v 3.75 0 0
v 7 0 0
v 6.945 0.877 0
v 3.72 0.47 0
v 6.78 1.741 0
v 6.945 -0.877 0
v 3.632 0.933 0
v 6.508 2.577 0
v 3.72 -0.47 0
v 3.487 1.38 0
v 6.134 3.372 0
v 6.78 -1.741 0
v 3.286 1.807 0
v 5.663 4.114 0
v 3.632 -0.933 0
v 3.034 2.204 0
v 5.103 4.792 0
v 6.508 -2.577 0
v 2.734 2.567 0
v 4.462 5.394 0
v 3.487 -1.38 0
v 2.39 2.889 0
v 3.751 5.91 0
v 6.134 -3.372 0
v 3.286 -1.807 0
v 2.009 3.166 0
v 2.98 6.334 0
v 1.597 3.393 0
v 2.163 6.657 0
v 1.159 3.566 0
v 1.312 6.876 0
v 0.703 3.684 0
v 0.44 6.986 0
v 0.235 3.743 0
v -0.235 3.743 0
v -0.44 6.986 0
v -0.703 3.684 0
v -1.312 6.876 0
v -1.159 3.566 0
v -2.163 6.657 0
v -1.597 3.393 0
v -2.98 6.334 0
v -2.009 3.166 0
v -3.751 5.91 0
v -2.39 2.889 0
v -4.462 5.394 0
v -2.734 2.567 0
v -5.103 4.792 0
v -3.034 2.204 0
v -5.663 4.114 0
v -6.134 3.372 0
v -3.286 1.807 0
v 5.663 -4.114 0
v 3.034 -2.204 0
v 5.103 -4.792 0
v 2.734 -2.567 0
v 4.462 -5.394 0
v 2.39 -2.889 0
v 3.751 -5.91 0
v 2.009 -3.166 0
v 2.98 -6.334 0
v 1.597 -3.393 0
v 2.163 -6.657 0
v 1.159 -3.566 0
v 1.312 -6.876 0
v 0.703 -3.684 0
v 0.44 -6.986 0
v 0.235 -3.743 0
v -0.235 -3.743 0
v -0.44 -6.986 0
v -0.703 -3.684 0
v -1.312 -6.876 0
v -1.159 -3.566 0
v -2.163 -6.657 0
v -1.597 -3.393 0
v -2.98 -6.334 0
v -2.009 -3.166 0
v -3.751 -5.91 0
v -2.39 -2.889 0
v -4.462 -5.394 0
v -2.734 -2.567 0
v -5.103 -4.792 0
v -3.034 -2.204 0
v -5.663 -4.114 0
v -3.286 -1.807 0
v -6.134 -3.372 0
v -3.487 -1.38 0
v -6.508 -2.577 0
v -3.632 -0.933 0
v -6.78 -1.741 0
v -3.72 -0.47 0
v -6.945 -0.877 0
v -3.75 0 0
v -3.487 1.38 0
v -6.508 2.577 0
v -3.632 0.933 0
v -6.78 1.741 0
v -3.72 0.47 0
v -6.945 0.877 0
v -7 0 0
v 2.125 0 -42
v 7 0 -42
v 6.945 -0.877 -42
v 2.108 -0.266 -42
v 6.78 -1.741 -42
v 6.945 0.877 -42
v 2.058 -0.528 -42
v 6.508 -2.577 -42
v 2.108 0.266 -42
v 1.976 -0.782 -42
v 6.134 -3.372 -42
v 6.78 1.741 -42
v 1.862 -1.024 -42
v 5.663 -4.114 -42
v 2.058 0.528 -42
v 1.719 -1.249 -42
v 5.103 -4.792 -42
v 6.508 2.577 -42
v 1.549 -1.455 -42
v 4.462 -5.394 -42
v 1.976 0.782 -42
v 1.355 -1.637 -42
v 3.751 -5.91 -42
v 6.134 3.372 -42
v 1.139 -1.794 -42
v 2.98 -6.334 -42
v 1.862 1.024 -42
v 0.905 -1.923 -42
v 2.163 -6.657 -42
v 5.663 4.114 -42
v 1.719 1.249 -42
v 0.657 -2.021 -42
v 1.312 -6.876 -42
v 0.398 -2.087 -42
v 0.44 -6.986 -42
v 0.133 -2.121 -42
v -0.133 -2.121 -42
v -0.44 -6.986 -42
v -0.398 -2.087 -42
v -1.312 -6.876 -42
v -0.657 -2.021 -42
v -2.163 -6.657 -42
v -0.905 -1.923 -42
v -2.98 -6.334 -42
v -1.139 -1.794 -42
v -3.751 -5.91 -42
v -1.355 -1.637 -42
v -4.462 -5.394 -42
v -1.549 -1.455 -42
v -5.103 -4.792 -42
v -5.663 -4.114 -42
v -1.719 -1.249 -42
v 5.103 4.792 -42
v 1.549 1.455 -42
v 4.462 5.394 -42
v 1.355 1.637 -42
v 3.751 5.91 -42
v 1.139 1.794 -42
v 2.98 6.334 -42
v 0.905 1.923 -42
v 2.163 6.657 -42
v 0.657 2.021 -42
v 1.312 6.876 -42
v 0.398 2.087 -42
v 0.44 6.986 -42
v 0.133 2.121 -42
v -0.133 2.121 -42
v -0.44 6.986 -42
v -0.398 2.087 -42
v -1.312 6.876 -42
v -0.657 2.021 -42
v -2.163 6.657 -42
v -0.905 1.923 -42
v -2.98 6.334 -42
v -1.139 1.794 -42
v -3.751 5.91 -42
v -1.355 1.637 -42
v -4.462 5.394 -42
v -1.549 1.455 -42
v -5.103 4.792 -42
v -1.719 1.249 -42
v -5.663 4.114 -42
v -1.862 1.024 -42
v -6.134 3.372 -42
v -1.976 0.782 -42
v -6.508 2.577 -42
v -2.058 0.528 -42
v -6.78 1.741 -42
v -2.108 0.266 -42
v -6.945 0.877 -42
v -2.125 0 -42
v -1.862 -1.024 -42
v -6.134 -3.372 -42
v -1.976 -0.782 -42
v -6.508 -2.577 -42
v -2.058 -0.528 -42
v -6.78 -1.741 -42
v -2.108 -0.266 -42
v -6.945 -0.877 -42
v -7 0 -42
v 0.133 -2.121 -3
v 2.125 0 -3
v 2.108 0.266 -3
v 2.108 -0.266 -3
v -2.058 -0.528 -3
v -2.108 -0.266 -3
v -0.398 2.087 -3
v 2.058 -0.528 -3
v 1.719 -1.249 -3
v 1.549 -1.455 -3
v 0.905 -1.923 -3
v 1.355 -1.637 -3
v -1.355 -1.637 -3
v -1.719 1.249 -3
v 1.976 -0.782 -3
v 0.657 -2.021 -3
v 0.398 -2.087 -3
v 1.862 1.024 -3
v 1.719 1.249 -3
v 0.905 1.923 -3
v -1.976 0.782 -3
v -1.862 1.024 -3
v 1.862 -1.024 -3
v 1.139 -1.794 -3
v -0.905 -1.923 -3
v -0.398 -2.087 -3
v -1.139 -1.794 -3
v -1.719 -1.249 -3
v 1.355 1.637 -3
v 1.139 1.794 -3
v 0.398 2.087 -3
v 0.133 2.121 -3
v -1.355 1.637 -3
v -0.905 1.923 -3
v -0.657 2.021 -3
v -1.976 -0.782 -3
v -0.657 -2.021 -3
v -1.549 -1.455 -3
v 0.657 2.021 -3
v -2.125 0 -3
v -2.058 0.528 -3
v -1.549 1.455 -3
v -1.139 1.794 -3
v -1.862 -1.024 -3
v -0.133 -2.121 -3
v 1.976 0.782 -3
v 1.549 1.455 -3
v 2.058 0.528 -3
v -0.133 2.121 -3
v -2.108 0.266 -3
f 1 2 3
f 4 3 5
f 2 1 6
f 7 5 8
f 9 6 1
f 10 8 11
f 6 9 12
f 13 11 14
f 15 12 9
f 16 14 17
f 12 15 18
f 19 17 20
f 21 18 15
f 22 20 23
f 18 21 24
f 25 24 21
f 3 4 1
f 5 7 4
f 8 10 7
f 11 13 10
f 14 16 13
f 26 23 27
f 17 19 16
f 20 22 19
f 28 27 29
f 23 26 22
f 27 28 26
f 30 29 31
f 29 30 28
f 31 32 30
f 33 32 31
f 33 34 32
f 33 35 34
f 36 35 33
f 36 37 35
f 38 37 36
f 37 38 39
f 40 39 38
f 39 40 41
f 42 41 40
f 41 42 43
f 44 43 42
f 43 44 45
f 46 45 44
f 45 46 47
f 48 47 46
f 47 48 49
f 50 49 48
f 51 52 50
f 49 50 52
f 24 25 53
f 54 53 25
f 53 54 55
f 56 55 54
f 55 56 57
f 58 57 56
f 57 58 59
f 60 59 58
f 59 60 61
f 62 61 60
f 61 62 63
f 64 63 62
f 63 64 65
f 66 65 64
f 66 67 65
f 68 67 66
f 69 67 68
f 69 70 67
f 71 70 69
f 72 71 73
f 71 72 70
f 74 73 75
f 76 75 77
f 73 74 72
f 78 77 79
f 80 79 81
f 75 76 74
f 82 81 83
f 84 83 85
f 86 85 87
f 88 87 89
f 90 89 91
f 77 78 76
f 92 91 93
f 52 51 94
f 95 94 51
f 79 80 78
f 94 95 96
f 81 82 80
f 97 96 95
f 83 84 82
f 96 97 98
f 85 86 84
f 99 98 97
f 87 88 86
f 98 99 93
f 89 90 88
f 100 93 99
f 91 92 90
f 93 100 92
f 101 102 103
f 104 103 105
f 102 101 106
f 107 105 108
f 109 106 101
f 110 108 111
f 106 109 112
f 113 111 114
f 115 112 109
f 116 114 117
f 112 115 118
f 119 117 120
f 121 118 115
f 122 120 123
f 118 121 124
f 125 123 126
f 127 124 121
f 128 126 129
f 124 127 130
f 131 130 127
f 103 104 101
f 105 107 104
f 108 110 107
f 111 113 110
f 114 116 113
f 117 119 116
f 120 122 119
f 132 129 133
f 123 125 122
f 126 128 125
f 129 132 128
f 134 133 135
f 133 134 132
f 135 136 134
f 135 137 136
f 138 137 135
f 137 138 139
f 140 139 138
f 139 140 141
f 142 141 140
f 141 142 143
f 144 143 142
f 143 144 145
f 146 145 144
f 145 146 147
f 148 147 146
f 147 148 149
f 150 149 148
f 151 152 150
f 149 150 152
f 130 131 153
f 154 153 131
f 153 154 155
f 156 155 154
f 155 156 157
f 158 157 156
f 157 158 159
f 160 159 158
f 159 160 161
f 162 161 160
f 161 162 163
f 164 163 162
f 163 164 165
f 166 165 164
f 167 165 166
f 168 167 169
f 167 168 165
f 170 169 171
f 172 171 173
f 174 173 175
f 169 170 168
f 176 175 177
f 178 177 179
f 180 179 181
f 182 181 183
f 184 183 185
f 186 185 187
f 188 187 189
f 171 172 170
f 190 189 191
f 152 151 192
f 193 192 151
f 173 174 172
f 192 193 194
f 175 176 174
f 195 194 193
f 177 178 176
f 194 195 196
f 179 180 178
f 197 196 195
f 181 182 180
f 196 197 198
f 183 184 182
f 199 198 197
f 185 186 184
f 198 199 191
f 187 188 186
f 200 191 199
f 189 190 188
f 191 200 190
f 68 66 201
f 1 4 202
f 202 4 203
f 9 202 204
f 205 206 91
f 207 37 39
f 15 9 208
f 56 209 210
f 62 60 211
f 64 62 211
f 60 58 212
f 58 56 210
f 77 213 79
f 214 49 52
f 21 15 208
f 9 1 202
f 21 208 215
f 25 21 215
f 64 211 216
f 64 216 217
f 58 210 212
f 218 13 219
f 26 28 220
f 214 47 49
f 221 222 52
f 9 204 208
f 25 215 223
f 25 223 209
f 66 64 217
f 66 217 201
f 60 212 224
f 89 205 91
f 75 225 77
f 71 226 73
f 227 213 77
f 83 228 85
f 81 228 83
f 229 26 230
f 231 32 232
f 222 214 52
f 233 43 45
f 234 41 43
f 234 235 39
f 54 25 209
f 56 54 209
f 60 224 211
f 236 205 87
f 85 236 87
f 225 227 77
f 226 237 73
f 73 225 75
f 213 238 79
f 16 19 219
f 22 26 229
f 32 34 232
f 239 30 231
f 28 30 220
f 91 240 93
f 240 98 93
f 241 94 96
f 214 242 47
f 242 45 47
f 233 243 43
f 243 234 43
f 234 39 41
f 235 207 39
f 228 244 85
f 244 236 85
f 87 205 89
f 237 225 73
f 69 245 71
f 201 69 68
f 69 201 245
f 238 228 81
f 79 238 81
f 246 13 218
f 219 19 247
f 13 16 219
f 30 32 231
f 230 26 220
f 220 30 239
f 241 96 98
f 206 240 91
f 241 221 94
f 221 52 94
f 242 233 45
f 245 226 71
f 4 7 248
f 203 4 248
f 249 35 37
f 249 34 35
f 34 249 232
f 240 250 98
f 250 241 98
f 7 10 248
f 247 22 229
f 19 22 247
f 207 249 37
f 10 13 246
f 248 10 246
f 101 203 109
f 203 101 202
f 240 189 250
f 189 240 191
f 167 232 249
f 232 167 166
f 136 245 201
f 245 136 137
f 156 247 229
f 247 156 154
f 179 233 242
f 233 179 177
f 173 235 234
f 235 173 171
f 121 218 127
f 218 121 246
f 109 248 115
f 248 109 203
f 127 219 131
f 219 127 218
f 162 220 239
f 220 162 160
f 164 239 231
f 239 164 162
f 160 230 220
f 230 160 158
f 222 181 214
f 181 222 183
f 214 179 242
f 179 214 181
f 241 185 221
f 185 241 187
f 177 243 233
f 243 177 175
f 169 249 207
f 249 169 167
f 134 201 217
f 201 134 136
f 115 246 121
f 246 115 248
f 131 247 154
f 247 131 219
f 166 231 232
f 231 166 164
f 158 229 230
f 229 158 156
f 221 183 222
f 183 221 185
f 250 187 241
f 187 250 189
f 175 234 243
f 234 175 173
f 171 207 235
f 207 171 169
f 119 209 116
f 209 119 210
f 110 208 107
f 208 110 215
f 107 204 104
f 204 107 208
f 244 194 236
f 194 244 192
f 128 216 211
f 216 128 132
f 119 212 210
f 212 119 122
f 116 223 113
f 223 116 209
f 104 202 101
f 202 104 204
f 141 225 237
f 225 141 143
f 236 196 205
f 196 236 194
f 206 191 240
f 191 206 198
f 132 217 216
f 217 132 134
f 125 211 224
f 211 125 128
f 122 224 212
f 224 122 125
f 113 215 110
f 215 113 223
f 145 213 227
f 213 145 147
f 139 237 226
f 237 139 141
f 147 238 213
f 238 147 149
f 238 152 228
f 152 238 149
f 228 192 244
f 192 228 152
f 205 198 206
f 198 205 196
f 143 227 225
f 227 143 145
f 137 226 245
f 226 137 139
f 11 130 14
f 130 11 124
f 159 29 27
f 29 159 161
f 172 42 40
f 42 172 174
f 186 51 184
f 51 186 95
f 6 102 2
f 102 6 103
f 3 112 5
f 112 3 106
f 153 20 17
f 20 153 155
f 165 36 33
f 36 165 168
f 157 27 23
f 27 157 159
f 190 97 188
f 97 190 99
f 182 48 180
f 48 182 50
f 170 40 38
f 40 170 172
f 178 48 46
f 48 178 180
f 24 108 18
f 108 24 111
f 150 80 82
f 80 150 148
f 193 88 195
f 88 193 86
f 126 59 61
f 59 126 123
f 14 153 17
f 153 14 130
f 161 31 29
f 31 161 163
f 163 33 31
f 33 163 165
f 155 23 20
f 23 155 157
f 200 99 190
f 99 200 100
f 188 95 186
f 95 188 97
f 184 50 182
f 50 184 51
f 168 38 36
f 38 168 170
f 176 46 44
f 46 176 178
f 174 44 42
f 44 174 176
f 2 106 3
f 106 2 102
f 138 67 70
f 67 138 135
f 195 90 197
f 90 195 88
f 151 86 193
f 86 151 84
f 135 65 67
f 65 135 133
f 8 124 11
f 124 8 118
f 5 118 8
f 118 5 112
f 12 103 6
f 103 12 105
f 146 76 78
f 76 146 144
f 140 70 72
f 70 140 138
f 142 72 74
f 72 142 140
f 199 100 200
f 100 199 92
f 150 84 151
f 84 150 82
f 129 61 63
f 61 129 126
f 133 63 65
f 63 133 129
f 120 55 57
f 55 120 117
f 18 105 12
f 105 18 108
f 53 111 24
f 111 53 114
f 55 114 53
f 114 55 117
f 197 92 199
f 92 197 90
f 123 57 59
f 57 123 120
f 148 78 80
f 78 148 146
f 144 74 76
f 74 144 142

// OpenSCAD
$fn = 50;


difference() {
	union() {
		translate(v = [0, 0, -42.0000000000]) {
			cylinder(h = 42, r = 7.0000000000);
		}
		cylinder(h = 0, r = 10.0000000000);
	}
	union() {
		translate(v = [0, 0, 0]) {
			rotate(a = [0, 0, 0]) {
				difference() {
					union() {
						#translate(v = [0, 0, -42.0000000000]) {
							cylinder(h = 42, r = 2.0000000000);
						}
						#translate(v = [0, 0, -3]) {
							cylinder(h = 3, r = 7.0000000000, r1 = 2.1250000000, r2 = 3.7500000000);
						}
						#translate(v = [0, 0, -42.0000000000]) {
							cylinder(h = 42, r = 2.1250000000);
						}
						#translate(v = [0, 0, -42.0000000000]) {
							cylinder(h = 42, r = 2.0000000000);
						}
					}
					union();
				}
			}
		}
	}
}
